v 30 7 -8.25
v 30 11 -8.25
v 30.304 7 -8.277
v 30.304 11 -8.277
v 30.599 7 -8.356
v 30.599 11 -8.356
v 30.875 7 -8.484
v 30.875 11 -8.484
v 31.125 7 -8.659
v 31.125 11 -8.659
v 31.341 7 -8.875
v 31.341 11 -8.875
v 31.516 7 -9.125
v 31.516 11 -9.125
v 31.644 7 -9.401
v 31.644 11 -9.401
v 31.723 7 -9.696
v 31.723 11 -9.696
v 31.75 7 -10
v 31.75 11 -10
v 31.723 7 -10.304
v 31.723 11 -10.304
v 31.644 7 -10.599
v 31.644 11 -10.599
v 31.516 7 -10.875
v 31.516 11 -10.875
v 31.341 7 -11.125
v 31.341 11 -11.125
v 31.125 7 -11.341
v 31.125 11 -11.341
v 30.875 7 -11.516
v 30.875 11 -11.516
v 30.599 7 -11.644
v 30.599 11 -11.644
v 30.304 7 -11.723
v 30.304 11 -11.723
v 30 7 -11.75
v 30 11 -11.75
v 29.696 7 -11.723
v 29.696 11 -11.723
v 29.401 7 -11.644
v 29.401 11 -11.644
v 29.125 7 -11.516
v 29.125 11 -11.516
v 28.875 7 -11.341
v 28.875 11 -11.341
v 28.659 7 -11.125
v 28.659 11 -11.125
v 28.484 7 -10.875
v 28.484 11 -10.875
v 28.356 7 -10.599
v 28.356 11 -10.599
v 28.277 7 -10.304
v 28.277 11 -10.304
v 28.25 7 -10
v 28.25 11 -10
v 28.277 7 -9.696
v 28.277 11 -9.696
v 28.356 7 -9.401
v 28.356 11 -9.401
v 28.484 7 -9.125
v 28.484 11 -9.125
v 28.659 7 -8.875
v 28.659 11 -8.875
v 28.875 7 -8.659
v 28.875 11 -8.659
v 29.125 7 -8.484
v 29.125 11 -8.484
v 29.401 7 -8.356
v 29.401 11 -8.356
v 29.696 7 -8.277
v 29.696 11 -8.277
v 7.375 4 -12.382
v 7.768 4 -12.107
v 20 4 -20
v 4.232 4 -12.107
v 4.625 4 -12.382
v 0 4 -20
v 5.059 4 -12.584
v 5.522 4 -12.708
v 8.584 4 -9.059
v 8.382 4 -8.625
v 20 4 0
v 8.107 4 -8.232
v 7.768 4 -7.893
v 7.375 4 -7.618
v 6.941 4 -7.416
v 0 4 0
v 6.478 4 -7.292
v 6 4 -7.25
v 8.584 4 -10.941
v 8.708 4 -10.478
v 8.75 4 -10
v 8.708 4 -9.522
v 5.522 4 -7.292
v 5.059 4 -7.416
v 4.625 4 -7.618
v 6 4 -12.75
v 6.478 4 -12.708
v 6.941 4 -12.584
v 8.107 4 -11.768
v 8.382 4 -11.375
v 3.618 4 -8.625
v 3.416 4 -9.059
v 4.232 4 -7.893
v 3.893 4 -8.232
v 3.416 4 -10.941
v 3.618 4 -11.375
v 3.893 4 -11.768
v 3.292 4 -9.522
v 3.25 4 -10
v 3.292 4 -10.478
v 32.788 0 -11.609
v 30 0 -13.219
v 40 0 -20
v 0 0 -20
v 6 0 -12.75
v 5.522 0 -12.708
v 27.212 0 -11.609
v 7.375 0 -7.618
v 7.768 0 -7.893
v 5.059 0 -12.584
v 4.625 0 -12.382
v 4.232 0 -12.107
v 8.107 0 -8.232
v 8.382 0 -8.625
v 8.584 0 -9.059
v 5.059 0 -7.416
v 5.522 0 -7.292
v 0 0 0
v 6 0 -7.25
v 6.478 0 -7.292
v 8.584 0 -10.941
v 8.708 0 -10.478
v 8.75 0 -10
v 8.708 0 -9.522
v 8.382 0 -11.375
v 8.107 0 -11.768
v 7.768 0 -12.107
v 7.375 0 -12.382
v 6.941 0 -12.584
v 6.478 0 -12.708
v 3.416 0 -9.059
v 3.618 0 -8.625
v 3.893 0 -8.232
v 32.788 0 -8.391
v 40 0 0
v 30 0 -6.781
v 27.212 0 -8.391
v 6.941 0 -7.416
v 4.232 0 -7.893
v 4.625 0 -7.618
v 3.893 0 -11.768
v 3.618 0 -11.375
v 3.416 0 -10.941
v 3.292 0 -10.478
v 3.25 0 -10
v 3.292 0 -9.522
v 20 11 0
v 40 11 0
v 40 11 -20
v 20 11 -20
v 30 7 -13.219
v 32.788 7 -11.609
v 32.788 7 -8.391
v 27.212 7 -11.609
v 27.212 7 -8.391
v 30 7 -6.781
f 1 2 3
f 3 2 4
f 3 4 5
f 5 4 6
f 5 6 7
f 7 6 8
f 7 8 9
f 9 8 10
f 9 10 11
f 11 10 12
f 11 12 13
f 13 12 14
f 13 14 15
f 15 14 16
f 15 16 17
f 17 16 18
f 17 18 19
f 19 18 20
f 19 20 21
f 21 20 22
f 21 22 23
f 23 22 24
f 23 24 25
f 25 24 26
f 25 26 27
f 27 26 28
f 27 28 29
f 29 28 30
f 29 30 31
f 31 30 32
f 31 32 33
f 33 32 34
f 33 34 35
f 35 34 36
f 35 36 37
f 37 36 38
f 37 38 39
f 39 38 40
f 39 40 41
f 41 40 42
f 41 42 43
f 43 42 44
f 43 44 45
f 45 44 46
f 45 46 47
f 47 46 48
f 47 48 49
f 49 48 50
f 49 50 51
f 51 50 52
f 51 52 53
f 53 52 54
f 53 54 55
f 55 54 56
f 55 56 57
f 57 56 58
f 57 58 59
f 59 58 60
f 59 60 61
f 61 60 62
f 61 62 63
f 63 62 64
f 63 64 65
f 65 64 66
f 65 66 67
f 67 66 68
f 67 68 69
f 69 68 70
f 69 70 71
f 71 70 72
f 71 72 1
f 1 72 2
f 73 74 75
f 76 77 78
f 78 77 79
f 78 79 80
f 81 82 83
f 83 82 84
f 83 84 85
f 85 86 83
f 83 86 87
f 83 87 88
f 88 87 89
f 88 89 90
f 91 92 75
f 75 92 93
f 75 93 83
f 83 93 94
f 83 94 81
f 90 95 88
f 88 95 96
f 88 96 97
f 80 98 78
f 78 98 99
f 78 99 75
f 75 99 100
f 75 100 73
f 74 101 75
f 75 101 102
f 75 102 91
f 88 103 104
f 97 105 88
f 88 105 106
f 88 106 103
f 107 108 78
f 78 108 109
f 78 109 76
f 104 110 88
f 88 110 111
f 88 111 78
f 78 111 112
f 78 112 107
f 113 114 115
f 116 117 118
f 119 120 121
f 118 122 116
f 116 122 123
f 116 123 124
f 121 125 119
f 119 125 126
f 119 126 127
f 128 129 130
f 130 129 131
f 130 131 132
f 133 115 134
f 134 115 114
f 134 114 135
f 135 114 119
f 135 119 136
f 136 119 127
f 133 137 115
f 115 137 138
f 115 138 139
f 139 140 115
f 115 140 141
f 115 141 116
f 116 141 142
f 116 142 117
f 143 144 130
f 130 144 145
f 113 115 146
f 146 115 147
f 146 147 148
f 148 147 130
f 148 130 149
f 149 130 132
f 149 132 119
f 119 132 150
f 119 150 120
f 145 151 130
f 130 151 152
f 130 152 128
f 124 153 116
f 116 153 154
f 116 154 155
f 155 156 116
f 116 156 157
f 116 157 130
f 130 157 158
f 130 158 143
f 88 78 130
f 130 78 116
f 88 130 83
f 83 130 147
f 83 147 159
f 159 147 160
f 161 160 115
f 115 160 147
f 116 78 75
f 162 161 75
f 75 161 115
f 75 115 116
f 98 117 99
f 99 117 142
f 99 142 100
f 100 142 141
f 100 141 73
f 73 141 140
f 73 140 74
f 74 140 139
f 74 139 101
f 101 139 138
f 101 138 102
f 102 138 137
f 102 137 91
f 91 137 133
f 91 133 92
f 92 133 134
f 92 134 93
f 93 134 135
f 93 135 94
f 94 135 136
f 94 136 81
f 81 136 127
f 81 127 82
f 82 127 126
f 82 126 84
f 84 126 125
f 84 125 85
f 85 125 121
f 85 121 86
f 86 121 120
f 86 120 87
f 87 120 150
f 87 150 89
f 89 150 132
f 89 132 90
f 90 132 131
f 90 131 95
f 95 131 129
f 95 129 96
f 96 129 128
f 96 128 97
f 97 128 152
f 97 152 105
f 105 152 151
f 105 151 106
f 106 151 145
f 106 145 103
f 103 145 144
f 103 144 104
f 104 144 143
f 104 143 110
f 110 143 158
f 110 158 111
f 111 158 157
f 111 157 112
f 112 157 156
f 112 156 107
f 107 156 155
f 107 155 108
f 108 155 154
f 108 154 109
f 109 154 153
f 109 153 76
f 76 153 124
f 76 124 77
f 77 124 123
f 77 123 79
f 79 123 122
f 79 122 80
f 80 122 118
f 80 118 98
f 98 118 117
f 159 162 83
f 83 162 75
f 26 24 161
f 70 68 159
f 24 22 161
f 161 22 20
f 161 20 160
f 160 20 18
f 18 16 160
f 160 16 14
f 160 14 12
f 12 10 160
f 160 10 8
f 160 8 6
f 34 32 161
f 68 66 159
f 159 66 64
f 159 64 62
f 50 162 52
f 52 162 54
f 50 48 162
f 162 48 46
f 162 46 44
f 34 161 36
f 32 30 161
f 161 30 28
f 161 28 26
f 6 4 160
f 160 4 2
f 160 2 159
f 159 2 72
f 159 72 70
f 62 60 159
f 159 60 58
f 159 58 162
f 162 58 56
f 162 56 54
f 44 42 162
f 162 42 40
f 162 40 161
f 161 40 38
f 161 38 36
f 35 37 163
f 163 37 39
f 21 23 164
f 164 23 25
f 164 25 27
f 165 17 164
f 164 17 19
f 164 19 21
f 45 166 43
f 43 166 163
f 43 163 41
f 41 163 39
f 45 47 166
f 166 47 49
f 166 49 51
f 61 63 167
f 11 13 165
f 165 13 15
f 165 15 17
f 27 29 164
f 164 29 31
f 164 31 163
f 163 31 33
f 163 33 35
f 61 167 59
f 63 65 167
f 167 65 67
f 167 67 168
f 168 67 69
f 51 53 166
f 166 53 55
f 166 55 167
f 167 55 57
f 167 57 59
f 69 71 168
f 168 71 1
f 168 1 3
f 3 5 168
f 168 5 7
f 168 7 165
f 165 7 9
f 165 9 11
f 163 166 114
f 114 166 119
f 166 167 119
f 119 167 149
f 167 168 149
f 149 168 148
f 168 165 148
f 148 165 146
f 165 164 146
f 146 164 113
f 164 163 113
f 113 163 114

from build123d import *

# Parameters (mm, degrees)
SKETCH1_W           = 40
SKETCH1_H           = 20
SKETCH1_R           = 2.75
BOSS_EXTRUDE1_DEPTH = 4
SKETCH2_W           = 20
SKETCH2_H           = 20
BOSS_EXTRUDE2_DEPTH = 7
SKETCH3_R           = 1.75
CUT_EXTRUDE1_DEPTH  = 12
CUT_EXTRUDE2_DEPTH  = 7


with BuildPart() as part:
    # Sketch1 → Boss-Extrude1 (new body)
    with BuildSketch(Plane(origin=(0, 0, 0), x_dir=(1, 0, 0), z_dir=(0, 1, 0))):
        with Locations((20, 10)):
            Rectangle(SKETCH1_W, SKETCH1_H)
        with Locations((6, 10)):
            Circle(SKETCH1_R, mode=Mode.SUBTRACT)
    extrude(amount=BOSS_EXTRUDE1_DEPTH)

    # Sketch2 → Boss-Extrude2 (add)
    with BuildSketch(Plane(origin=(0, 4, 0), x_dir=(1, 0, 0), z_dir=(0, 1, 0))):
        with Locations((30, 10)):
            Rectangle(SKETCH2_W, SKETCH2_H)
    extrude(amount=BOSS_EXTRUDE2_DEPTH)

    # Sketch3 → Cut-Extrude1 (cut, through all)
    with BuildSketch(Plane(origin=(0, 11, 0), x_dir=(1, 0, 0), z_dir=(0, 1, 0))):
        with Locations((30, 10)):
            Circle(SKETCH3_R)
    extrude(amount=-CUT_EXTRUDE1_DEPTH, mode=Mode.SUBTRACT)

    # Sketch4 → Cut-Extrude2 (cut)
    with BuildSketch(Plane(origin=(0, 0, 0), x_dir=(-1, 0, 0), z_dir=(0, -1, 0))):
        Polygon((-30, 13.218727751), (-32.7875, 11.609363875), (-32.7875, 8.390636125), (-30, 6.781272249), (-27.2125, 8.390636125), (-27.2125, 11.609363875), align=None)
    extrude(amount=-CUT_EXTRUDE2_DEPTH, mode=Mode.SUBTRACT)


solid = part.part
